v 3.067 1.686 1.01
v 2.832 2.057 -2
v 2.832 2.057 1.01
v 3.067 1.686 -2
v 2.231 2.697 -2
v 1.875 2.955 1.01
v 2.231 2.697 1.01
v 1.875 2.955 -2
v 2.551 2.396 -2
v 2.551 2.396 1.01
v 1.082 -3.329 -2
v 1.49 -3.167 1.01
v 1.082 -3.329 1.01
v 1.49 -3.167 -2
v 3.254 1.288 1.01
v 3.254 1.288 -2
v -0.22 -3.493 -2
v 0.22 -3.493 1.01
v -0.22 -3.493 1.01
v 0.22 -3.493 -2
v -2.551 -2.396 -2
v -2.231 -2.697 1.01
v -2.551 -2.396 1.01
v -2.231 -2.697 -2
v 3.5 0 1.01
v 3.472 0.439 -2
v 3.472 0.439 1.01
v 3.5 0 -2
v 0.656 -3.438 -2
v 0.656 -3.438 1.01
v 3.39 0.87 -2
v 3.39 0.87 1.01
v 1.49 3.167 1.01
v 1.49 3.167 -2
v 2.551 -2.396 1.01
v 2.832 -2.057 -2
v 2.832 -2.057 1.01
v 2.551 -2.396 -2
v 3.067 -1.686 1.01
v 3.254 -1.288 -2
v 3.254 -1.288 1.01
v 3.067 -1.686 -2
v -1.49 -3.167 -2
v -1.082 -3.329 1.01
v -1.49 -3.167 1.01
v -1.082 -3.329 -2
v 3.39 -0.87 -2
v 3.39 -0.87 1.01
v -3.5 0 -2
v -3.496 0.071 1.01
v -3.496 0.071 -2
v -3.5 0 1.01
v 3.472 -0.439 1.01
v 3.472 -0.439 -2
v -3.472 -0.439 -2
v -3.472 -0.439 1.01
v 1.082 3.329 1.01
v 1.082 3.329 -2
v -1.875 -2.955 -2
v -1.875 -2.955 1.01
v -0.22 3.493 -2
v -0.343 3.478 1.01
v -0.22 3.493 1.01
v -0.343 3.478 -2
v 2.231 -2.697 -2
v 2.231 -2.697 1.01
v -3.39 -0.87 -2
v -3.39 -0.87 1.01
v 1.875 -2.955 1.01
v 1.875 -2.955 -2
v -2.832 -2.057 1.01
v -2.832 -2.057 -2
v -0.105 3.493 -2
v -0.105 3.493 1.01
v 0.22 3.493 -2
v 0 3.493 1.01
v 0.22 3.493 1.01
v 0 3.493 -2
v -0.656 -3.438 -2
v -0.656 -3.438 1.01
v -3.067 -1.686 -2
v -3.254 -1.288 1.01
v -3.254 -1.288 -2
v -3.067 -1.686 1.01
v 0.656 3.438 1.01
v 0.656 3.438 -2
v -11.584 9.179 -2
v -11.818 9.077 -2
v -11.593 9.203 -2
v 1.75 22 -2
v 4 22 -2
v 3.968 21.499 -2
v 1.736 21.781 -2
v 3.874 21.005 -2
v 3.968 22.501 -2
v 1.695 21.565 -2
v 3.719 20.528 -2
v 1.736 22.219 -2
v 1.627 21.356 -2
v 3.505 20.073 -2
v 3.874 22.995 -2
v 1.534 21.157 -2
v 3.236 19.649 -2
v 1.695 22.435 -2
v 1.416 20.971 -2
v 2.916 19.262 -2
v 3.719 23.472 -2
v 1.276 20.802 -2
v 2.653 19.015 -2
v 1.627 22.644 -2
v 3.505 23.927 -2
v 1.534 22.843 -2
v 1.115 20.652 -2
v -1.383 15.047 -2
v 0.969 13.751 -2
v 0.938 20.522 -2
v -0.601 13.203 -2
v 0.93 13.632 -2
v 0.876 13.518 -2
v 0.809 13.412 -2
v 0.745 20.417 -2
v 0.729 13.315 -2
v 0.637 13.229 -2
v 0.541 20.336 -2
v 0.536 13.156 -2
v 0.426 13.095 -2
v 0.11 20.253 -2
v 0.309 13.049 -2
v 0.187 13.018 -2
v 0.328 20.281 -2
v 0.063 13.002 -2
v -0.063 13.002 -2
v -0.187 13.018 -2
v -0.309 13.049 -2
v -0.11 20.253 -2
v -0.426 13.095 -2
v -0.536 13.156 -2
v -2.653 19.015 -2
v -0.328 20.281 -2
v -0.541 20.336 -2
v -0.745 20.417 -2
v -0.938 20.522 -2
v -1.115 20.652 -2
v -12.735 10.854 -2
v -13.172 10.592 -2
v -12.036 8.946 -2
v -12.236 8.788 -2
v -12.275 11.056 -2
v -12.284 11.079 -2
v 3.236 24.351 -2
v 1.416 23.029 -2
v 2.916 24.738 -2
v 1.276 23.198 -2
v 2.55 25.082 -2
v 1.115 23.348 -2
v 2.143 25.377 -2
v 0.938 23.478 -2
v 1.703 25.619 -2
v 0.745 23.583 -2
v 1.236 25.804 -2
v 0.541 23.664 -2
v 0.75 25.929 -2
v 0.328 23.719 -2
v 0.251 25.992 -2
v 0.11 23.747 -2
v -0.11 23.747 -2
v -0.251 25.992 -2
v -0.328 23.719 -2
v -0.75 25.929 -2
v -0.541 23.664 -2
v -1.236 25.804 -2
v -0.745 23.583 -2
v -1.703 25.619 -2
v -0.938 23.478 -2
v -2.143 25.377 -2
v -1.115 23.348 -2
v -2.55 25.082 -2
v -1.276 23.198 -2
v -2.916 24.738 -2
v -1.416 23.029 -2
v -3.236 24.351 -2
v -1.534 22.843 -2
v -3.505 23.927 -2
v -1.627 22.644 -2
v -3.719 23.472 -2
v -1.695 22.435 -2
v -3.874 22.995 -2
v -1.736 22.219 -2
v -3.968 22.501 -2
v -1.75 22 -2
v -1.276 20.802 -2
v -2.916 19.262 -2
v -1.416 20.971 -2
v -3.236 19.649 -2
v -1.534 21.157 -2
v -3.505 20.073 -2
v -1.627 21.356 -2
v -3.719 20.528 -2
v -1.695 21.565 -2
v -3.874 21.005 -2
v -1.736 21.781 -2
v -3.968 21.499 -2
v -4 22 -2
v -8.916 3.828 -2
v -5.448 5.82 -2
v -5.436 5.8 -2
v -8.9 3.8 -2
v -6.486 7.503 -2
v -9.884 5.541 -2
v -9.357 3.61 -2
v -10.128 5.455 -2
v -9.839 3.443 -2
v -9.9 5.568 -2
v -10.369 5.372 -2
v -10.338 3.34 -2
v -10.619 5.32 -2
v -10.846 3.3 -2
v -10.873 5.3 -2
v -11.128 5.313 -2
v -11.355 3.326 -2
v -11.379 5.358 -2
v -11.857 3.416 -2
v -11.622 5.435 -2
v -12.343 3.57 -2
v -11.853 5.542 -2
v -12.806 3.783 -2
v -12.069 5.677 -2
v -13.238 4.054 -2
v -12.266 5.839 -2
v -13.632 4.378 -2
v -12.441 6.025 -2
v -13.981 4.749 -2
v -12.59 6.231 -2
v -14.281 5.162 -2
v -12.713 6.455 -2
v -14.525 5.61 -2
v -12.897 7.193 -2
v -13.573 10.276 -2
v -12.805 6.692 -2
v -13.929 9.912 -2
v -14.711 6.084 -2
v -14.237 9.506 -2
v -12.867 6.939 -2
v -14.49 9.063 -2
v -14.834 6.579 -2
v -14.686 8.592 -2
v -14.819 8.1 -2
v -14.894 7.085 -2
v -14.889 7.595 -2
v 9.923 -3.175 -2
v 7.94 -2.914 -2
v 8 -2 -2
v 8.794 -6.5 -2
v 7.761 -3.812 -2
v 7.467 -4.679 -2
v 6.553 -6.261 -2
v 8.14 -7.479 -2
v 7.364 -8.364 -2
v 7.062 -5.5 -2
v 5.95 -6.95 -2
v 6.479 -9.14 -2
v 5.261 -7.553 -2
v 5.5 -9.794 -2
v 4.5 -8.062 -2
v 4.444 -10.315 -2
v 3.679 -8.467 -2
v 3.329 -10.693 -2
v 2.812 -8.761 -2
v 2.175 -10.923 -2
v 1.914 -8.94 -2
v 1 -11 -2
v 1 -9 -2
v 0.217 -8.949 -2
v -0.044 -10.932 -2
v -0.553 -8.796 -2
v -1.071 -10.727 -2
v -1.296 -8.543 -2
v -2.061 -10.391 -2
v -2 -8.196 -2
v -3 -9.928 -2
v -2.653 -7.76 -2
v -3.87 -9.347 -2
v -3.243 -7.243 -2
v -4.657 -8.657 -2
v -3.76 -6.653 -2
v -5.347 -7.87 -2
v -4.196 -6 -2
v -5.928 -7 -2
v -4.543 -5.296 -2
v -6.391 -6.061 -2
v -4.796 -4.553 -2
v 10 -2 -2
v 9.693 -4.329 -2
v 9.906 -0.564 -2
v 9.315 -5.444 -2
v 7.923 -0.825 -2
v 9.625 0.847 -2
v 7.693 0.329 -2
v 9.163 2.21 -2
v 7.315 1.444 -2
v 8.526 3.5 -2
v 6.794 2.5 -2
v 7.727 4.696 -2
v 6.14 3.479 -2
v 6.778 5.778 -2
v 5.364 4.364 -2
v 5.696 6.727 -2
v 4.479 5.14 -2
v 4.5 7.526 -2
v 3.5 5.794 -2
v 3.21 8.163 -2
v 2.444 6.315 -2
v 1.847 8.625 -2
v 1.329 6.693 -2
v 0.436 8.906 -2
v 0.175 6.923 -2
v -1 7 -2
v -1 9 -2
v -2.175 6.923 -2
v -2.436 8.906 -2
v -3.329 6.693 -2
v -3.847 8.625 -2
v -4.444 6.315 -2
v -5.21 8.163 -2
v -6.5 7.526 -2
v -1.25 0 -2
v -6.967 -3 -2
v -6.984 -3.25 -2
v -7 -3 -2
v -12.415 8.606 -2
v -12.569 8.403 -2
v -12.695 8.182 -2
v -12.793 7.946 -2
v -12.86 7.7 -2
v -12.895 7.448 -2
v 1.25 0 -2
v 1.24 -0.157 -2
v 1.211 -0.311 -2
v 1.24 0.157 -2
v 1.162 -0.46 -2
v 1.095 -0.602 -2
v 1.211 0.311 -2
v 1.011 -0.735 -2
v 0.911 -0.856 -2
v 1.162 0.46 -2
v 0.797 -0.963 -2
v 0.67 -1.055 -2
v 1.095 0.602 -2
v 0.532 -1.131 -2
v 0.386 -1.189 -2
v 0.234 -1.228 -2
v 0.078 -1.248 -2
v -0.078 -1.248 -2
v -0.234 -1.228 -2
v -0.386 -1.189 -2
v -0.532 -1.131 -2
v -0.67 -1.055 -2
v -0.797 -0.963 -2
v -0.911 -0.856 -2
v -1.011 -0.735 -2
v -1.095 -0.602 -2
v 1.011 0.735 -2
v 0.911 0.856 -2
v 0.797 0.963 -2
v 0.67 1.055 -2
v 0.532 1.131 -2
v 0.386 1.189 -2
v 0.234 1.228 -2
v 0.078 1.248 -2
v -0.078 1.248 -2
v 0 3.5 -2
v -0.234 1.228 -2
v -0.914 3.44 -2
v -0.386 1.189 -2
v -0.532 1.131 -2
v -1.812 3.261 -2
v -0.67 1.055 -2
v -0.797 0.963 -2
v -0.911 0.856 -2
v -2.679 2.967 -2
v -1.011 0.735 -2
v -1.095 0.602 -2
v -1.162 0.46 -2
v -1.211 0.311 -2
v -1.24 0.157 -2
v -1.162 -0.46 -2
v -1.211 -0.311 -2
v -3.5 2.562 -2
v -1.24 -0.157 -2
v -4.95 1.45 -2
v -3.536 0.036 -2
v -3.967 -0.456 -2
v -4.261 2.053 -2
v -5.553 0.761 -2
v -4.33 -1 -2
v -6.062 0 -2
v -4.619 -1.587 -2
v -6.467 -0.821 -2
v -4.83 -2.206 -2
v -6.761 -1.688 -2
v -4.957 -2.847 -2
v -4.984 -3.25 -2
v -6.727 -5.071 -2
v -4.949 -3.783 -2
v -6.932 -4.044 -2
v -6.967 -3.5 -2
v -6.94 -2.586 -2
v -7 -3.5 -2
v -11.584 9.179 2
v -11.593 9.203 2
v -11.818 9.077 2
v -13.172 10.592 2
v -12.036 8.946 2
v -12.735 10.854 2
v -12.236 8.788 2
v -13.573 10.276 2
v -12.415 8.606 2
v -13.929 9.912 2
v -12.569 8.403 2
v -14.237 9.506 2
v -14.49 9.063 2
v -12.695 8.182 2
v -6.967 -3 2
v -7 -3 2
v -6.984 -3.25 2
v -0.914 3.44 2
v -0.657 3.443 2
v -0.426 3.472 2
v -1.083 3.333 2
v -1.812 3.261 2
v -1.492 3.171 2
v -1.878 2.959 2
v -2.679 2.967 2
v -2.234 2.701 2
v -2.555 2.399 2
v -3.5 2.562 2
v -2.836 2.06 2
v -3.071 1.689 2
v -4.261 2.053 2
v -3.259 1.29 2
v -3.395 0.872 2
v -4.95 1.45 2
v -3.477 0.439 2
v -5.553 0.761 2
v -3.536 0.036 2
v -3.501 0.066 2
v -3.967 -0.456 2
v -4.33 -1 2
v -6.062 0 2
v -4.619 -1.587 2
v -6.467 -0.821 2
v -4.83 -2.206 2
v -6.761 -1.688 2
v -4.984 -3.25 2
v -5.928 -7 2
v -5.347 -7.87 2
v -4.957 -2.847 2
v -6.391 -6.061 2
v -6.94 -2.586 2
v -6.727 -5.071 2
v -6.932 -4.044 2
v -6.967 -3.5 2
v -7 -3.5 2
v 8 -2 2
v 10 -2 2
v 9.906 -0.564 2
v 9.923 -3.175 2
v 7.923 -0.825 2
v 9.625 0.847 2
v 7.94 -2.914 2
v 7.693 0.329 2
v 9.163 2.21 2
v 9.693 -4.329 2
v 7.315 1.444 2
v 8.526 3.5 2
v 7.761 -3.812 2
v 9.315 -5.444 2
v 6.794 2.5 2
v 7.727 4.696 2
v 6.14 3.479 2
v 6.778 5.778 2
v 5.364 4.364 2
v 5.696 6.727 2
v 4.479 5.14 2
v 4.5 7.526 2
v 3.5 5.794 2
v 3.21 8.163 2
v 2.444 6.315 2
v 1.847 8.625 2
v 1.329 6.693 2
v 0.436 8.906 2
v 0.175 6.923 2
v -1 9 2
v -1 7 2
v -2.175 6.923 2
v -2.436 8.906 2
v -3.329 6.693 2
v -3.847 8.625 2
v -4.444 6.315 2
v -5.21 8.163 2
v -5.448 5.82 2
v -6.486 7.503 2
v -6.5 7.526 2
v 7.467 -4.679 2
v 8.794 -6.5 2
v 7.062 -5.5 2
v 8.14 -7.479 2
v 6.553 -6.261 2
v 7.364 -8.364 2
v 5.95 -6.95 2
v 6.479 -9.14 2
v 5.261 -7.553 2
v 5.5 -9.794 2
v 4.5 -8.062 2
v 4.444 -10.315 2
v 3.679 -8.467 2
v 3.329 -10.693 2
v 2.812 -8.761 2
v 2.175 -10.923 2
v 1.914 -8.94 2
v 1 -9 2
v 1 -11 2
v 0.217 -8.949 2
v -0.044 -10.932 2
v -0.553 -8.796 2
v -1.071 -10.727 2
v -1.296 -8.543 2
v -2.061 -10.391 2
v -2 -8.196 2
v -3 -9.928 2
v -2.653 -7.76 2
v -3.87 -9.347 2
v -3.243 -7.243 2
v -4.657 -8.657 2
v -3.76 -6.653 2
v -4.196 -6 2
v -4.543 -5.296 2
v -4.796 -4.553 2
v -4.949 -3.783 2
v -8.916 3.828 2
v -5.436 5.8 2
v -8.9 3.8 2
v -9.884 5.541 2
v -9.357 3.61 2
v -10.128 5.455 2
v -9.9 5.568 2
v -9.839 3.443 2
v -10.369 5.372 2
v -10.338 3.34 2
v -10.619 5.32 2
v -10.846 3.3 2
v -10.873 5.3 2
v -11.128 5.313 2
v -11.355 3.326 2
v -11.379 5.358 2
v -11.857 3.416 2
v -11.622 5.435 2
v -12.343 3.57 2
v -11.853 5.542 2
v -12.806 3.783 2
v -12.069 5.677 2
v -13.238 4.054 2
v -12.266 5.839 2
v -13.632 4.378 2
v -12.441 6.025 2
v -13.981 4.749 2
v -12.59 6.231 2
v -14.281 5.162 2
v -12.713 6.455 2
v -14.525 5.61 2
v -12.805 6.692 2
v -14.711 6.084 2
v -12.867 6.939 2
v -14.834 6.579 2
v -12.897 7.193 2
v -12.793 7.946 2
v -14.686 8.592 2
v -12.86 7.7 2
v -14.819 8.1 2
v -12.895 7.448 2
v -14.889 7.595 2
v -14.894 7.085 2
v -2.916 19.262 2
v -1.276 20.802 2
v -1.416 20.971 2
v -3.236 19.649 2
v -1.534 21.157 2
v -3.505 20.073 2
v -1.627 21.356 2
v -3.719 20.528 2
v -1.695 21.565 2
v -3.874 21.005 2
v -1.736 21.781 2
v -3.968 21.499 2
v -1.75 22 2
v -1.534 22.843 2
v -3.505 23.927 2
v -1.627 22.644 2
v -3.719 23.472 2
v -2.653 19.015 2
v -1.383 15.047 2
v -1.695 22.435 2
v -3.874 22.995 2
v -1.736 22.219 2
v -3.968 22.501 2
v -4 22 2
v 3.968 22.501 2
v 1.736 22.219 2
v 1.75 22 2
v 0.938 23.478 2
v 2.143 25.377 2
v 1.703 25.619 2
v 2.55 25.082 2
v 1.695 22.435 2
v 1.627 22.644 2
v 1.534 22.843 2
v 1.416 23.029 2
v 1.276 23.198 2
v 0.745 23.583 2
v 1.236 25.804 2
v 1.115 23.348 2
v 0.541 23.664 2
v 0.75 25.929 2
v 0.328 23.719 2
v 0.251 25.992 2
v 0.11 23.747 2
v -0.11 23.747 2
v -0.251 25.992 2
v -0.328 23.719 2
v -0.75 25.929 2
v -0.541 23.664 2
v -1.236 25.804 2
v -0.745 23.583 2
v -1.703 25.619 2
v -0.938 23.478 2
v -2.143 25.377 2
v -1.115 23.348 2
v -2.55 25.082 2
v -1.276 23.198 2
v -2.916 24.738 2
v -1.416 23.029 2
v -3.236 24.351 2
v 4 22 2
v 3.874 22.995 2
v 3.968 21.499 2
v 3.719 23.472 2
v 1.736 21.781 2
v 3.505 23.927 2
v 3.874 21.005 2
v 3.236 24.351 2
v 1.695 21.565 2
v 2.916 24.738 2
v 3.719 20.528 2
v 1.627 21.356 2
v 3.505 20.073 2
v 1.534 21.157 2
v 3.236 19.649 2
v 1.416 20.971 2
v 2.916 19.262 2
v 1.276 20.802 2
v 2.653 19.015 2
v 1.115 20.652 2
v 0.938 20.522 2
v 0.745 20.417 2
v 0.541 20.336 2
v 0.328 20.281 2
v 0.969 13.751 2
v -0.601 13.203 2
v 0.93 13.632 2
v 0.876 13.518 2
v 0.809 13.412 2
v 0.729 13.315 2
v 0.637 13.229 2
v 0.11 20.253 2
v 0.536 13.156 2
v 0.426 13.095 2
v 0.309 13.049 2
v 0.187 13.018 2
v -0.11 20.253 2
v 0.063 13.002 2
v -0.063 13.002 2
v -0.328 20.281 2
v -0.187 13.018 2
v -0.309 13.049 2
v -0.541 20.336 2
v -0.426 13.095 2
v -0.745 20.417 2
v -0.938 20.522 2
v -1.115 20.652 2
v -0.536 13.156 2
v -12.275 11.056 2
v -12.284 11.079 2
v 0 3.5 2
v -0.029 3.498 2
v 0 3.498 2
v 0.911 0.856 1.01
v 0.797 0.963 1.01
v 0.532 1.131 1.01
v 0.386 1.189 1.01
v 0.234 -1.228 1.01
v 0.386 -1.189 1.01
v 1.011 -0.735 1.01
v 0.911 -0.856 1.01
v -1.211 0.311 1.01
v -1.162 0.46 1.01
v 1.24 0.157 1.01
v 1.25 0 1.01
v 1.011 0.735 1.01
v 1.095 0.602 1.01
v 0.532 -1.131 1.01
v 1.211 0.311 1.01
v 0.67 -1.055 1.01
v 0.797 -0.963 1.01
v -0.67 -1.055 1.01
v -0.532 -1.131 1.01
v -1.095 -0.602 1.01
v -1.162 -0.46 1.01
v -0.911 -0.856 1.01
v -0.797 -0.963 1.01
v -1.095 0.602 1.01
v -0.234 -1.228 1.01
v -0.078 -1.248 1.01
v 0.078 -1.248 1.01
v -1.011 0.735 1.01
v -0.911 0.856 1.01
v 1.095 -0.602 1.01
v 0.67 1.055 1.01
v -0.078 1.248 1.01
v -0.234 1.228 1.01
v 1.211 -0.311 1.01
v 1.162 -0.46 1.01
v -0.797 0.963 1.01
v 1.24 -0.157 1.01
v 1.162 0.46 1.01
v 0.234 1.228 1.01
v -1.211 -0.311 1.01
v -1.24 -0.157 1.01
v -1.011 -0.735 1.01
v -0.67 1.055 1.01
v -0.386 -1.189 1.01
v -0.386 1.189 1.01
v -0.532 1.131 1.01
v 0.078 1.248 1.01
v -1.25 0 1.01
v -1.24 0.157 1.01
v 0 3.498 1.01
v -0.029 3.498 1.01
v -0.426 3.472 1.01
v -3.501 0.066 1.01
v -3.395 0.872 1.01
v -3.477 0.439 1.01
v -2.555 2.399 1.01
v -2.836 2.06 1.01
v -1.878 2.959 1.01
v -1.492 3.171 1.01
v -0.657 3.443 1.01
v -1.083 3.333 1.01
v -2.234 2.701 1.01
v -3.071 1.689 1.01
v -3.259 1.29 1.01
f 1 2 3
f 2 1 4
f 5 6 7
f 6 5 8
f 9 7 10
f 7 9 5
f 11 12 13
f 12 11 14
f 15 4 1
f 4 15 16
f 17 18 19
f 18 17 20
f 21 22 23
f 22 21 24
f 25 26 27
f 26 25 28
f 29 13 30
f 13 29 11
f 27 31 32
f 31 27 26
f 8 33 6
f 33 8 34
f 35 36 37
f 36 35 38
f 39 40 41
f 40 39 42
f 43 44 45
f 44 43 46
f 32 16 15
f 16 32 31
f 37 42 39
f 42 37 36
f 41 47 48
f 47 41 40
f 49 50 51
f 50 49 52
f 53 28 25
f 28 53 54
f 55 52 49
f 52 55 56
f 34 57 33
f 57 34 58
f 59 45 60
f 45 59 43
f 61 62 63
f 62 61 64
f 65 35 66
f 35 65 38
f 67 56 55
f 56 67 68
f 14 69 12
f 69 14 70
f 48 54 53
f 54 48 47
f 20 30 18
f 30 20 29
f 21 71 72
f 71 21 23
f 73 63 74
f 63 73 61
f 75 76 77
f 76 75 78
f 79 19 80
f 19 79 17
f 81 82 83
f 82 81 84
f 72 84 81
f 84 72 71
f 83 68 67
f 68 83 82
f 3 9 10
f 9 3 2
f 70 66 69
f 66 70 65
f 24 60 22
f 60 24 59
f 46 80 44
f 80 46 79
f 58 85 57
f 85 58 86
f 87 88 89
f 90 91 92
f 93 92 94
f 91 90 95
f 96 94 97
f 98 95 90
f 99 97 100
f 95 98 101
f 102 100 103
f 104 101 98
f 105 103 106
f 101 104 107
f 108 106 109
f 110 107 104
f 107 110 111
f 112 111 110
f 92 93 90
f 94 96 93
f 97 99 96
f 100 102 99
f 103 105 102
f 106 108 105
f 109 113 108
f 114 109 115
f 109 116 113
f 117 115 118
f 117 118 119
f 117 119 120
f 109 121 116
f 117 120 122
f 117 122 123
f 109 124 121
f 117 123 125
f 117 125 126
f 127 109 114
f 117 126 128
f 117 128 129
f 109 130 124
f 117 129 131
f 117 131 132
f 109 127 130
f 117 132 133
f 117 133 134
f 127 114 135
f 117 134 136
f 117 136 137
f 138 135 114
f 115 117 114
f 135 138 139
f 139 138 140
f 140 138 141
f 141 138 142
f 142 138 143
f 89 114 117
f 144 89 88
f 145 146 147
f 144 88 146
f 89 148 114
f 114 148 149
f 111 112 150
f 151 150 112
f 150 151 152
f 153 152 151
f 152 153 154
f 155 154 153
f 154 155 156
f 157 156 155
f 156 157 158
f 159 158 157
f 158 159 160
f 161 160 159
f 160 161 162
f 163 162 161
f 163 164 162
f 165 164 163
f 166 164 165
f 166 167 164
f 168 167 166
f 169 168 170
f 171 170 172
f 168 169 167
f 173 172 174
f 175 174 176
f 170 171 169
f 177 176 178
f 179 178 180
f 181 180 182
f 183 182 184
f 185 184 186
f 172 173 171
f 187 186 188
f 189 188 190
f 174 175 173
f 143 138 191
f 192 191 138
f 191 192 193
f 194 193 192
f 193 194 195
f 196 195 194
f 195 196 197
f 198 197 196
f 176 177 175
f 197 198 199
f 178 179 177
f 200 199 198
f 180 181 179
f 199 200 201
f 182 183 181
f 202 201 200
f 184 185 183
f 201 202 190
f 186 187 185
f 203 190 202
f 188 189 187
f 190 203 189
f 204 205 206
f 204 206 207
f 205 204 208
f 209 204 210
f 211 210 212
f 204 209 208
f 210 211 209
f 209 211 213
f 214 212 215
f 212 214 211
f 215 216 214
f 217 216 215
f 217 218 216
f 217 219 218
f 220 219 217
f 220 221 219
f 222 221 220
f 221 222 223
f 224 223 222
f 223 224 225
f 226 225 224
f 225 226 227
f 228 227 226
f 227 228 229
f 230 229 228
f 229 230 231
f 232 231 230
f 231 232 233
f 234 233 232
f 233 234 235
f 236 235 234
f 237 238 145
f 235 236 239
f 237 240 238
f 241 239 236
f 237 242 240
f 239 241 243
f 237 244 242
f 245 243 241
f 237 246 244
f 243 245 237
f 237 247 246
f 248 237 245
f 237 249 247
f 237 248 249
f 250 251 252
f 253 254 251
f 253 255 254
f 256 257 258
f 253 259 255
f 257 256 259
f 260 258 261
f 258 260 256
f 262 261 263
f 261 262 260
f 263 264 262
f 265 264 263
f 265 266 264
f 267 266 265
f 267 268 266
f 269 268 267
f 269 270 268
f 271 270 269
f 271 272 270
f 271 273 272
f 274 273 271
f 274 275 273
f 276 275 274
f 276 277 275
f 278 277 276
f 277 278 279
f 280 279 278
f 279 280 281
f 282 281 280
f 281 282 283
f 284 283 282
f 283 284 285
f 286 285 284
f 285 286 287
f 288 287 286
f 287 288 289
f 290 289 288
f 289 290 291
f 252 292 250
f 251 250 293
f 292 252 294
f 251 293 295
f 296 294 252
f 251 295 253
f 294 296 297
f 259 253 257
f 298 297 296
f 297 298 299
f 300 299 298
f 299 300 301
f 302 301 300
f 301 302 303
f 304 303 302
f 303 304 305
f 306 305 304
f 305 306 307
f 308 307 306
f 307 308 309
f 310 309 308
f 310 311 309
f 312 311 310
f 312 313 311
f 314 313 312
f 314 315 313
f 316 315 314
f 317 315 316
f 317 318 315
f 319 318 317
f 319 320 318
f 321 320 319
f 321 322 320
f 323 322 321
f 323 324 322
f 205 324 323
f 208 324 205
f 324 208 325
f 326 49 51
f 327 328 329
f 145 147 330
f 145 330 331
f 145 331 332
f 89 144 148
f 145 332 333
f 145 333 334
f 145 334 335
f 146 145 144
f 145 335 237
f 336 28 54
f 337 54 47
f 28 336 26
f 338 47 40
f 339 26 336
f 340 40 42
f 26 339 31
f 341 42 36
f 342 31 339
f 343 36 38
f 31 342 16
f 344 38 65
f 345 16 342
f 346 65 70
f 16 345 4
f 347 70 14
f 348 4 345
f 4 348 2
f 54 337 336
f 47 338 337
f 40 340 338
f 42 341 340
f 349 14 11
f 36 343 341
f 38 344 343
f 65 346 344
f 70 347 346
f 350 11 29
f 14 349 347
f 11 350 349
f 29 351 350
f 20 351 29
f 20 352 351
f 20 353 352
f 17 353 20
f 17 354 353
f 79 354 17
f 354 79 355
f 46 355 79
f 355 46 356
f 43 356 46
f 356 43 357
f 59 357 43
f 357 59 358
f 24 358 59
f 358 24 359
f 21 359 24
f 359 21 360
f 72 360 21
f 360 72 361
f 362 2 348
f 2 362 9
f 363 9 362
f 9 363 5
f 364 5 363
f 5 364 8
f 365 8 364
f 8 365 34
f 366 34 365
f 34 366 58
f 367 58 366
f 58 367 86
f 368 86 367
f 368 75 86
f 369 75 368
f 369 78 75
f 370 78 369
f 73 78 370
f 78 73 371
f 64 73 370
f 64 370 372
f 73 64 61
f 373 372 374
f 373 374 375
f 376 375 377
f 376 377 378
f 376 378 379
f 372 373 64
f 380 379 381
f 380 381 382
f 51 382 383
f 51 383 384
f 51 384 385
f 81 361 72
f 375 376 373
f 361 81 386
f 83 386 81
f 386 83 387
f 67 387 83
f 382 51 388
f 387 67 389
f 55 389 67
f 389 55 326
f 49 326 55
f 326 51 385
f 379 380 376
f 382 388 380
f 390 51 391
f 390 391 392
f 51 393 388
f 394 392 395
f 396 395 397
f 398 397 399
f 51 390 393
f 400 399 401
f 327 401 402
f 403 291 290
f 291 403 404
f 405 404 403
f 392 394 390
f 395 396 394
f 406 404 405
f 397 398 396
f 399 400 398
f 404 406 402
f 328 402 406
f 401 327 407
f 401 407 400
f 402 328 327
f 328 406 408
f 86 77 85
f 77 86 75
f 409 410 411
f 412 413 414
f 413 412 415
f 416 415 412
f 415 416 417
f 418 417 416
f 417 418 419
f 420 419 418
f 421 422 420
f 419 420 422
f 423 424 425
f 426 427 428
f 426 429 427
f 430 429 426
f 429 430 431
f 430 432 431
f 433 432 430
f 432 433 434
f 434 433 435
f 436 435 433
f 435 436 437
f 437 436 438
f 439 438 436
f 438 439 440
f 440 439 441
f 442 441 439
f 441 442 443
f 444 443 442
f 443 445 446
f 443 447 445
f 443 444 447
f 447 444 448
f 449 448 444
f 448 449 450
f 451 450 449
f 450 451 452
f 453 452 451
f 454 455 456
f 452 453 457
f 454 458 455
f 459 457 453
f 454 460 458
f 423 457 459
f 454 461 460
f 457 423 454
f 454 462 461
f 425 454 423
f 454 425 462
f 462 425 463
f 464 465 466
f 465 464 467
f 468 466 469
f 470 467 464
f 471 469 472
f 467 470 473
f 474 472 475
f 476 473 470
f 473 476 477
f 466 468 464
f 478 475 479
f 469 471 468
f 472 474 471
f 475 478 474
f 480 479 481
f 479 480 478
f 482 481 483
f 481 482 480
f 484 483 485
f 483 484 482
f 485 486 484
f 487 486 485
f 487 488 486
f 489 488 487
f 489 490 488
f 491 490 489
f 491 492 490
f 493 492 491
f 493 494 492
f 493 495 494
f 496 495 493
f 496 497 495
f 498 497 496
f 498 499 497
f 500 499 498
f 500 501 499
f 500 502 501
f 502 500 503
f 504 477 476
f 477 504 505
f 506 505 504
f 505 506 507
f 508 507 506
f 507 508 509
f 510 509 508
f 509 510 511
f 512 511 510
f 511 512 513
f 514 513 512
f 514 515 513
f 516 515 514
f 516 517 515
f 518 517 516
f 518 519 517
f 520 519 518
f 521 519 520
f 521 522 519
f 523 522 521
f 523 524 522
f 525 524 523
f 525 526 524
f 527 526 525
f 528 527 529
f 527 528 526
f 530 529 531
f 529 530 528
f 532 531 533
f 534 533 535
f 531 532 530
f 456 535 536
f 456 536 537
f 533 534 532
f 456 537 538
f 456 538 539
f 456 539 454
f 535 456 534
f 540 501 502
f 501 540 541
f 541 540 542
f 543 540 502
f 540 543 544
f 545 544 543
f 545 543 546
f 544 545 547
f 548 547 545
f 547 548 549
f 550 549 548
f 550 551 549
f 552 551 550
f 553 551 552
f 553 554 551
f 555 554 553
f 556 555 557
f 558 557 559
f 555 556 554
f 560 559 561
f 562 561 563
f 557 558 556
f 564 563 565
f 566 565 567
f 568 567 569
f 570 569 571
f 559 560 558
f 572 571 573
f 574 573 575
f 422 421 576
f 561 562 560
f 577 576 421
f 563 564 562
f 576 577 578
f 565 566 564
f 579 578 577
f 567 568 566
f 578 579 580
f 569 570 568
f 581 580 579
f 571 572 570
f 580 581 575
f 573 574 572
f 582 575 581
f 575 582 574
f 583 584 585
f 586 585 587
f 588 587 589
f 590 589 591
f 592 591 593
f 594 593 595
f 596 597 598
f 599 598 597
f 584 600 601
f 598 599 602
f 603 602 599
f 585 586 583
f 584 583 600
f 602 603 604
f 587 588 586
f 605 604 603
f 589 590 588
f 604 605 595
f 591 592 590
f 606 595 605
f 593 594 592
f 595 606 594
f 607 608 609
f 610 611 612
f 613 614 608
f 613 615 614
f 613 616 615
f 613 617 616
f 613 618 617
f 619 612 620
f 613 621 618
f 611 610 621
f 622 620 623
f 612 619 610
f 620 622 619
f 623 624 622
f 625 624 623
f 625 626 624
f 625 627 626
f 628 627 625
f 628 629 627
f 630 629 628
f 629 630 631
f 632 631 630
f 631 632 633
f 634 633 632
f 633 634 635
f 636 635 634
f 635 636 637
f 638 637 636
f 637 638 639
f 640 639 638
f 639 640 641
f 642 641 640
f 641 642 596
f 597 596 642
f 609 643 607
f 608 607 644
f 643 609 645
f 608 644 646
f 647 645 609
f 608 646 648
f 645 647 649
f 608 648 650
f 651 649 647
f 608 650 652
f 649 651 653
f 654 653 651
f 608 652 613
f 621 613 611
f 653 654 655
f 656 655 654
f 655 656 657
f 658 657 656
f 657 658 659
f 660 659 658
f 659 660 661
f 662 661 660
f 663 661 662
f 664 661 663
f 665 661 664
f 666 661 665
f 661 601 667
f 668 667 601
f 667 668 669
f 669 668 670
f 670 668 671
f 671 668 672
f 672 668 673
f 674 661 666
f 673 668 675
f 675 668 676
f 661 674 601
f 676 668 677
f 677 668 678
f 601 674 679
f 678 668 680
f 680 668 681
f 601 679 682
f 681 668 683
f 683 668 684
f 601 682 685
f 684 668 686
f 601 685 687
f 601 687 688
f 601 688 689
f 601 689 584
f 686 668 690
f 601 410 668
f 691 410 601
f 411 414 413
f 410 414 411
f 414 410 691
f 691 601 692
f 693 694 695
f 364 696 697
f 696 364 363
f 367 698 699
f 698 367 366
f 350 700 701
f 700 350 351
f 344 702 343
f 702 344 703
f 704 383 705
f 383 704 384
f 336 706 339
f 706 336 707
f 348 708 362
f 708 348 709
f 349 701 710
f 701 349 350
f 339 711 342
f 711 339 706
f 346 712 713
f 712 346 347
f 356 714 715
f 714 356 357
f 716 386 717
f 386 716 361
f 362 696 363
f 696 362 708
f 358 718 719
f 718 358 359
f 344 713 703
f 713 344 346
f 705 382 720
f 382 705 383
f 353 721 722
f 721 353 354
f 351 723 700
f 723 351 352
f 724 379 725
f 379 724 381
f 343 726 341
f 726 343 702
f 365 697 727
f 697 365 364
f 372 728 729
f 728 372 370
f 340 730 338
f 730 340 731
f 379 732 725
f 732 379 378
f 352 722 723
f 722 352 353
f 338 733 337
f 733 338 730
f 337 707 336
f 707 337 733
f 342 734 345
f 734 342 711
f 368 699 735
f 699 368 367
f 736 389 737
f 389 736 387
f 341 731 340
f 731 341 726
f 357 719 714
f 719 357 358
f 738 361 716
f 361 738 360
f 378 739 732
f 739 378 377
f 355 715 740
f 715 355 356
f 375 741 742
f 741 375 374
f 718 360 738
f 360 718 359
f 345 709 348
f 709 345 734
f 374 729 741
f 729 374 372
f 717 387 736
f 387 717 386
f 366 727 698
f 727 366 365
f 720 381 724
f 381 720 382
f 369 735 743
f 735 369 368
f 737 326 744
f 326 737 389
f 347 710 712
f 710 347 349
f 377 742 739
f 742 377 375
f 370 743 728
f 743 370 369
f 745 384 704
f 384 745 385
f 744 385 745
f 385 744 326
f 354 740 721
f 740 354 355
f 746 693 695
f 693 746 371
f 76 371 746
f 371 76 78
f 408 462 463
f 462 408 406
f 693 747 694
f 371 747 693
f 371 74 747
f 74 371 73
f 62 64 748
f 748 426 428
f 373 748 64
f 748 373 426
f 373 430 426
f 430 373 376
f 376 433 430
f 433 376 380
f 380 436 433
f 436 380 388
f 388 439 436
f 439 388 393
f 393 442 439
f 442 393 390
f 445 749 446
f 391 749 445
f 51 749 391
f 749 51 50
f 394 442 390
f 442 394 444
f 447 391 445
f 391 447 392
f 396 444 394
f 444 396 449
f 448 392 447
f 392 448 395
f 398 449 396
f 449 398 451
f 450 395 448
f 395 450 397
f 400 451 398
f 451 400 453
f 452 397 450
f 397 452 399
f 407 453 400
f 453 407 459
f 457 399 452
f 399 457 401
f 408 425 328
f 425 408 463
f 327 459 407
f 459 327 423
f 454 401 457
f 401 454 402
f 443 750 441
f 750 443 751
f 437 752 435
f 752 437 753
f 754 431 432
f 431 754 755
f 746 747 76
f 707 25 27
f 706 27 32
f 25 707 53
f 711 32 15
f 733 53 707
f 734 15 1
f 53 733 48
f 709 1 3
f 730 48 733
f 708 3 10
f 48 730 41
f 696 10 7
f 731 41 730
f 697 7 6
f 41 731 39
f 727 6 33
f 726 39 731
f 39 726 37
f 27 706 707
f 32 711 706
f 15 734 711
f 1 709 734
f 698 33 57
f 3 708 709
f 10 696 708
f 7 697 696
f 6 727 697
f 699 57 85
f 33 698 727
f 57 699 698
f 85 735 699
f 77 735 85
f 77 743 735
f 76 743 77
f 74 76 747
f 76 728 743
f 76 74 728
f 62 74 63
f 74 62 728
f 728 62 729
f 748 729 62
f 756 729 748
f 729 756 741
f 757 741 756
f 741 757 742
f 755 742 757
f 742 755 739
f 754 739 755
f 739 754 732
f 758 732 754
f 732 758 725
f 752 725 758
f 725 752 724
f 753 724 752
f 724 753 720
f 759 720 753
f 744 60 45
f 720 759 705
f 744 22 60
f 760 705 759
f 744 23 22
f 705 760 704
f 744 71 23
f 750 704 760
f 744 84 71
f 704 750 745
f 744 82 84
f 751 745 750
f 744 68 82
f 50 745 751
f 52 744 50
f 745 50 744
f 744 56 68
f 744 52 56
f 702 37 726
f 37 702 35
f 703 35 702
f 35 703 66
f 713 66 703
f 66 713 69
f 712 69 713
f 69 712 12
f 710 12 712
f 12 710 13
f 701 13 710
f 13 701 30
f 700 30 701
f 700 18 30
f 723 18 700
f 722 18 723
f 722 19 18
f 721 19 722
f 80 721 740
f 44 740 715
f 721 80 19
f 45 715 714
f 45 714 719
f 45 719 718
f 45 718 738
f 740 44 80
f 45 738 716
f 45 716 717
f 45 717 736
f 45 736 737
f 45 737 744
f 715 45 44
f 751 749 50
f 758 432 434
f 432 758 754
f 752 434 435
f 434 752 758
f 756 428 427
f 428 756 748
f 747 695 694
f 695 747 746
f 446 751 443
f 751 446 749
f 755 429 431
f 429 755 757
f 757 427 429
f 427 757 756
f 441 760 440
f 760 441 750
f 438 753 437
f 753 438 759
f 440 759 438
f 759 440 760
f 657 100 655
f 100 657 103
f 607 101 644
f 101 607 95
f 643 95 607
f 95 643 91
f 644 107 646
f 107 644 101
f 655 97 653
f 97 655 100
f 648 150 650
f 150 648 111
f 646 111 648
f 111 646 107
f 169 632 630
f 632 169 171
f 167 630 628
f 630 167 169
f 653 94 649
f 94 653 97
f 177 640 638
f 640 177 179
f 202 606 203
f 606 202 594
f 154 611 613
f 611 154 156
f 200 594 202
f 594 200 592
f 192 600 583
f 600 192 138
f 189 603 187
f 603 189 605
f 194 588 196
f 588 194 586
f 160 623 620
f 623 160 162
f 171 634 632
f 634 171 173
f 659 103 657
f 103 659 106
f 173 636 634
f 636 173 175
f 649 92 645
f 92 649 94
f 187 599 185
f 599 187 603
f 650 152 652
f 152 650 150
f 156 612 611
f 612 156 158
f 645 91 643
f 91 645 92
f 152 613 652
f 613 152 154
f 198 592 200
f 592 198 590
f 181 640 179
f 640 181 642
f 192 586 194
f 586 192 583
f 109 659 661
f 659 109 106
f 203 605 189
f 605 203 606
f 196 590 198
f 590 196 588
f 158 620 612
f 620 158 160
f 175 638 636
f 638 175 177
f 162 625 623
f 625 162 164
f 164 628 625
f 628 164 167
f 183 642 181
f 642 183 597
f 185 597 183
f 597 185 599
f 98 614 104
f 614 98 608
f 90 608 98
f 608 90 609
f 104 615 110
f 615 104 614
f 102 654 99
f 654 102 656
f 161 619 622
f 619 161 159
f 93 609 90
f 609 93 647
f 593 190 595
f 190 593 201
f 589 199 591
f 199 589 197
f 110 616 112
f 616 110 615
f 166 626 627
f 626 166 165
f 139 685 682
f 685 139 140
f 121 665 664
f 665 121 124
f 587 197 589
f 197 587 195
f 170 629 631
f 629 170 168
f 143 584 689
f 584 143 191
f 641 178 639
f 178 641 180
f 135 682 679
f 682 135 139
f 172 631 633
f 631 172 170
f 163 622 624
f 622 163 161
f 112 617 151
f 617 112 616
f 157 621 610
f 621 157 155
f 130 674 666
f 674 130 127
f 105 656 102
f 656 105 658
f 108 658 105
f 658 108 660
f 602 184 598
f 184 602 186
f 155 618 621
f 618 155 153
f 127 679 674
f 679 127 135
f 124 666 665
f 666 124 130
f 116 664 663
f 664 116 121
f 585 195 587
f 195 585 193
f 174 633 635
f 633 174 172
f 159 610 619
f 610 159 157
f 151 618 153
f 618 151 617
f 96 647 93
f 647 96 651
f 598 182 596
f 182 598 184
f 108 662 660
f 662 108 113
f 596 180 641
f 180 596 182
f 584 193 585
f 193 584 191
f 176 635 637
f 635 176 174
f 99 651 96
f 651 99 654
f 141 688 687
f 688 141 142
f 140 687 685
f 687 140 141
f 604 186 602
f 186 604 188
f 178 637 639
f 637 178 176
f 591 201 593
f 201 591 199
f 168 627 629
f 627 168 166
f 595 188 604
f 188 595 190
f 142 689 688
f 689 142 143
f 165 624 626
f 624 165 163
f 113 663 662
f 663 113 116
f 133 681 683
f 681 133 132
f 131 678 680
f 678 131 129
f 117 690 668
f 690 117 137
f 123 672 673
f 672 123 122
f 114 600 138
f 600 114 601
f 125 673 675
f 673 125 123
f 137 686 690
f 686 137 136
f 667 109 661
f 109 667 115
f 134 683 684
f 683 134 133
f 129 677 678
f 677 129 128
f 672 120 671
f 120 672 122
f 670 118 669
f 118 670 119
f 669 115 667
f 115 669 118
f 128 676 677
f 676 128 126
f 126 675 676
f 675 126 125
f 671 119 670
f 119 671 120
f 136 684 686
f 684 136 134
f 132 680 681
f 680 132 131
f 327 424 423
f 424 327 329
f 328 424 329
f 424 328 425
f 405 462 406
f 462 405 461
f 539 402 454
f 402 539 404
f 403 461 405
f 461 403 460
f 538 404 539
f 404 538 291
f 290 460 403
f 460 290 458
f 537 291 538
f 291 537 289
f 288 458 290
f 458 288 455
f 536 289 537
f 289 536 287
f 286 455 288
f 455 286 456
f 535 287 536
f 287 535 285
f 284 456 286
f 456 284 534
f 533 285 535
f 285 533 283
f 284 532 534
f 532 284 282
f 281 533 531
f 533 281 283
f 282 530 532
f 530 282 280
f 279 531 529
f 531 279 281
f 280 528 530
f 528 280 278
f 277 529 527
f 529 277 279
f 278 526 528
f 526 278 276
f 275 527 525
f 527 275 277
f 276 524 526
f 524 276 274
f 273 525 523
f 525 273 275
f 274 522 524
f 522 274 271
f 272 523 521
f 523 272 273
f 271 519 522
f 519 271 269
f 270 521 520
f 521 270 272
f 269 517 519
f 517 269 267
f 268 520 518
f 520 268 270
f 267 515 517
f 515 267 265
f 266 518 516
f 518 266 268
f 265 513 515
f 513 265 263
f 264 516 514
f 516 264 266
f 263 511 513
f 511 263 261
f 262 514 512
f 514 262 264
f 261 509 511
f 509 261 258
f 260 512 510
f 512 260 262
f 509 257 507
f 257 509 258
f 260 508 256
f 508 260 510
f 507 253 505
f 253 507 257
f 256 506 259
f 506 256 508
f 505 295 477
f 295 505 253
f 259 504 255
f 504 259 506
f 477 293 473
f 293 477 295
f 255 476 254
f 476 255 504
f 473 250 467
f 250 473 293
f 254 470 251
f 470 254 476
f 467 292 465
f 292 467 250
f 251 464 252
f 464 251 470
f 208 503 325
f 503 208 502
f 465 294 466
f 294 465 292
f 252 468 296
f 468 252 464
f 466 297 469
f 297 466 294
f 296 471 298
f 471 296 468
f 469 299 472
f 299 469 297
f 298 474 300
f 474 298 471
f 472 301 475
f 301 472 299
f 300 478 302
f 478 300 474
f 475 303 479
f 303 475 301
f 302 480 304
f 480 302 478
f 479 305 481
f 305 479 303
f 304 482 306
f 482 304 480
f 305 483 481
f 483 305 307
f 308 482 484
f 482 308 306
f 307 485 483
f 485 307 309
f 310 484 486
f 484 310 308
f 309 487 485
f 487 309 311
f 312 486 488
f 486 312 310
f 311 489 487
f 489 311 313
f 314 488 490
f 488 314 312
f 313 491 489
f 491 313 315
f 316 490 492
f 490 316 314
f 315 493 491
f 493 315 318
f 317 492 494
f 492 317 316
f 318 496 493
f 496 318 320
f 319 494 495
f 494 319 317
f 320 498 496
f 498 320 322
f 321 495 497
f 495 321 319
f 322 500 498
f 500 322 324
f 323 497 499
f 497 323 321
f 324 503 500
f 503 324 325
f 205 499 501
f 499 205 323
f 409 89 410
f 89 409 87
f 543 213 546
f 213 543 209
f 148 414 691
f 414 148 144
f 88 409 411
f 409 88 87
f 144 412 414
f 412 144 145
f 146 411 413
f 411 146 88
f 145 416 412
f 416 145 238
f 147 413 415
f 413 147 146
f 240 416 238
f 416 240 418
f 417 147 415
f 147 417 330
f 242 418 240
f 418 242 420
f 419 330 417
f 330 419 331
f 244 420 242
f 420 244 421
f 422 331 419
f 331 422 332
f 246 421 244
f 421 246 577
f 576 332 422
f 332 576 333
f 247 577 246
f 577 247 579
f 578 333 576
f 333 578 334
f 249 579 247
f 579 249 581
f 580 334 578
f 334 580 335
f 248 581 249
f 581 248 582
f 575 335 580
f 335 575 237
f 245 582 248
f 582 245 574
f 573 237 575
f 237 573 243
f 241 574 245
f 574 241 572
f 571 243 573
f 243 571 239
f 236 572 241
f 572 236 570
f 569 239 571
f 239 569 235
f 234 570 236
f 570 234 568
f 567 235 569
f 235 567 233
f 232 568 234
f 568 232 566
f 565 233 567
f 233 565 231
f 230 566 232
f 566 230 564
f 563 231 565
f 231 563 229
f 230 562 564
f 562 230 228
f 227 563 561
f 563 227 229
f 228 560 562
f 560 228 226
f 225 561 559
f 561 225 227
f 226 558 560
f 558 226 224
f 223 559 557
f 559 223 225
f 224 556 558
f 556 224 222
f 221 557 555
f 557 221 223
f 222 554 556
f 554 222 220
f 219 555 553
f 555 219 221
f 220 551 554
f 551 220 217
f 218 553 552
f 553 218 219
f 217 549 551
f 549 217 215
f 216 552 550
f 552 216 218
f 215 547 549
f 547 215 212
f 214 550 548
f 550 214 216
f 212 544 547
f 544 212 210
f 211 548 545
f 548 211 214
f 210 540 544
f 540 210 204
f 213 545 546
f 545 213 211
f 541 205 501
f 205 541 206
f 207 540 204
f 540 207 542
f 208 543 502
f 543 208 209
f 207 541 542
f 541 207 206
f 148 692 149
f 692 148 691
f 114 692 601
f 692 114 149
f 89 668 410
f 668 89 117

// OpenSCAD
// Original: https://www.thingiverse.com/thing:3432954
// Eggbot remix/ extension
// License: by schuetzi99 is licensed under the Creative Commons - Attribution - Non-Commercial - Share Alike license.
// 
// 2024 - bruder-jo: cleared drill hole :)
// 2023 - justin@justinotherguy.org: enlarged drill hole to accomodate for bigger screws

$fn=50;

lochabstand=22;
dicke=2;
breite=4;

difference() {
  union() {
    translate([0,0,-breite/2])auge(7,2.5);
    translate([0,-3.5,0])rotate([0,0,90])
      rotate_extrude(angle=90, convexity=10)
        translate([6, 0]) square([dicke,breite],center=true);
  }
  translate([0,0,1.01]) cylinder(d=7.01,h=1);
}

translate([0,lochabstand,-breite/2])auge(8,3.5); // original: 2.4
hull(){
  translate([-3,lochabstand-1.9,-breite/2])cube([6,0.1,breite]);
  translate([0,lochabstand-8,-breite/2])cylinder(r=1,h=breite);
}

translate([1,-3,0])rotate([0,0,180])
   rotate_extrude(angle=90, convexity=10)
       translate([7, 0]) square([dicke,breite],center=true);
translate([1,-2,0])rotate([0,0,270])
   rotate_extrude(angle=90, convexity=10)
       translate([8, 0]) square([dicke,breite],center=true);
translate([-1,-2,0])rotate([0,0,0])
   rotate_extrude(angle=120, convexity=10)
       translate([10, 0]) square([dicke,breite],center=true);
translate([-10.9,7.3,0])rotate([0,0,110])
   rotate_extrude(angle=190, convexity=10)
       translate([3, 0]) square([dicke,breite],center=true);
translate([-8.9,3.8,-breite/2])rotate([0,0,30])cube([4,dicke,breite]);
translate([-11.6,9.2,-breite/2])rotate([0,0,20])cube([12,dicke,breite]);
     
module auge(od,id){
  difference(){
    translate([0,0,0])cylinder(r=od/2,h=breite);
    translate([0,0,-0.01])cylinder(r=id/2,h=breite+0.2);
  }
}
